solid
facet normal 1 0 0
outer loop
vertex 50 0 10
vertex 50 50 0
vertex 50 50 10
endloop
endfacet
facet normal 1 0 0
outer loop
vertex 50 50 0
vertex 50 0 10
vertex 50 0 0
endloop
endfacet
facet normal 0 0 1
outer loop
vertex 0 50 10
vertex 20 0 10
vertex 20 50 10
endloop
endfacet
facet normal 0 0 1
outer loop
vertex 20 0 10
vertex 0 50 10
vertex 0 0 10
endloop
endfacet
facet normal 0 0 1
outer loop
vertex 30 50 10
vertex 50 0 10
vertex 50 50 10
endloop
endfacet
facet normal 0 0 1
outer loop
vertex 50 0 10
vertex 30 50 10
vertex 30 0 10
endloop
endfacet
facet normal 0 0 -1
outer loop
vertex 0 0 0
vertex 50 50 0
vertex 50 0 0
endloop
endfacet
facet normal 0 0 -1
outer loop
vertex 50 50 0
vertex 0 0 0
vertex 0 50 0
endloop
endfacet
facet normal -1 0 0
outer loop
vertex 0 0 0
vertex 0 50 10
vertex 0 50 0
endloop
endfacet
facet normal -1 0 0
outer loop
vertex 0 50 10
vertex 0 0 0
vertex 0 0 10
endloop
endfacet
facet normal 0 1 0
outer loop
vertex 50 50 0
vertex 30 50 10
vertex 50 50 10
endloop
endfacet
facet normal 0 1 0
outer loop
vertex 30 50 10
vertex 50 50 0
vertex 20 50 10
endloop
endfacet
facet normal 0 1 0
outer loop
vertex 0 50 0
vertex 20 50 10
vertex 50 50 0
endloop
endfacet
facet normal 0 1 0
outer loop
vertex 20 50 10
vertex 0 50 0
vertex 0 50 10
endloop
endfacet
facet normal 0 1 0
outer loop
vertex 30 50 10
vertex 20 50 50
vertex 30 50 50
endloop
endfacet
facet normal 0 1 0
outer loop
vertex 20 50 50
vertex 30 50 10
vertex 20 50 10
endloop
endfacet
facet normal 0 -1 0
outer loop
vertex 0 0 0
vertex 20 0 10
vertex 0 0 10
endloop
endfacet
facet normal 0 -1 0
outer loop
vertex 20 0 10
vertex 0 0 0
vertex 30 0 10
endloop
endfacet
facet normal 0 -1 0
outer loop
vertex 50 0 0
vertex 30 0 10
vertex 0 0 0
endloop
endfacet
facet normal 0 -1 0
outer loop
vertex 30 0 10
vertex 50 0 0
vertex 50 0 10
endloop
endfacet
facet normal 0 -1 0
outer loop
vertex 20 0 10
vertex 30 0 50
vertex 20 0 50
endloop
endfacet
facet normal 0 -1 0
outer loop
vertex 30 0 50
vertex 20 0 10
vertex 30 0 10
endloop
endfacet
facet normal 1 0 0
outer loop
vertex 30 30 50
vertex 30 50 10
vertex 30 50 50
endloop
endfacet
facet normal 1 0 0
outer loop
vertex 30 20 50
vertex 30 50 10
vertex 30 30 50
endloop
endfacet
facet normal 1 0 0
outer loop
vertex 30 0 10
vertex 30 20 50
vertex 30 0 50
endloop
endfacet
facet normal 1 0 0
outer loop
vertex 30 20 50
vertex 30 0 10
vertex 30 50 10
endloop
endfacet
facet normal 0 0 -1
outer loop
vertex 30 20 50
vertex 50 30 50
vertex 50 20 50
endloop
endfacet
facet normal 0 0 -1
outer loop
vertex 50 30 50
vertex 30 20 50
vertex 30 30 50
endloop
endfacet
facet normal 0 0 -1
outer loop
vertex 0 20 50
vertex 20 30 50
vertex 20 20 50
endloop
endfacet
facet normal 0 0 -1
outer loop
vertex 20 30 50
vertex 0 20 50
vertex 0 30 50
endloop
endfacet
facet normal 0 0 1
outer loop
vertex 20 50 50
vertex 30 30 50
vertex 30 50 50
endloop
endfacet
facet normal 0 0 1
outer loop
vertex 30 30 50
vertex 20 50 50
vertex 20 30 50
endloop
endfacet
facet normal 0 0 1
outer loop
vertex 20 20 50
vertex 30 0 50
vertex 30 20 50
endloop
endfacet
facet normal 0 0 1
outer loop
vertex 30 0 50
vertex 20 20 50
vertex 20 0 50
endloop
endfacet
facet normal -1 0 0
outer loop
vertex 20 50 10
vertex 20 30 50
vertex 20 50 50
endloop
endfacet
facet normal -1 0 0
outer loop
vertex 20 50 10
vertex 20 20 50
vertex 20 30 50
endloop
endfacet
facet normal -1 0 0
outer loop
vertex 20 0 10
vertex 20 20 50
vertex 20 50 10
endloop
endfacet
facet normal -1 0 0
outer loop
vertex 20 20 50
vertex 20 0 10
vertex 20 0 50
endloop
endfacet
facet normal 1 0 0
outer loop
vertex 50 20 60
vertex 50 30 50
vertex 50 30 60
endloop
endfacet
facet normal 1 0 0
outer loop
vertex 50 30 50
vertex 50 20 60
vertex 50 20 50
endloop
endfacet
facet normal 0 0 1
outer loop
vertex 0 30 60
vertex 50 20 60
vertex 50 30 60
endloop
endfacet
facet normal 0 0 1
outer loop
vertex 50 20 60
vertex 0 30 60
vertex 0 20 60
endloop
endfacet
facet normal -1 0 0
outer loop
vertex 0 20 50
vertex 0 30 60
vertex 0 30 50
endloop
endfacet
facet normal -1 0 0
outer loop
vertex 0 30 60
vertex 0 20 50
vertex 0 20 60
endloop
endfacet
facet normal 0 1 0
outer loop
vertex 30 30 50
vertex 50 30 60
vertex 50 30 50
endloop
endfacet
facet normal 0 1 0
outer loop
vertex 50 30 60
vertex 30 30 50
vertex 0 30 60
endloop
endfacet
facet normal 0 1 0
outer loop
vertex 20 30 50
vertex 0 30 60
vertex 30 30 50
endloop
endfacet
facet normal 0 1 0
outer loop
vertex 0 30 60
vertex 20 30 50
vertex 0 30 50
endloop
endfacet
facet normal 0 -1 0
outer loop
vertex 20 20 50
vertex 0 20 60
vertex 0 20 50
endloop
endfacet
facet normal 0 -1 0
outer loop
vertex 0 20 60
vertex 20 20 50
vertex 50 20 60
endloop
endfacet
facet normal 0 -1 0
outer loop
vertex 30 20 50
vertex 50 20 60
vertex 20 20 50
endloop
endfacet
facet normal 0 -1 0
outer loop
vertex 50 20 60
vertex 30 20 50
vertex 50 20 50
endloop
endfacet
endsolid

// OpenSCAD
// Base block dimensions
base_block_length = 50;  // Length of the base block
base_block_width = 50;   // Width of the base block
base_block_height = 10;  // Height of the base block

// Vertical block dimensions
vertical_block_length = 10;  // Length of the vertical block
vertical_block_width = 50;   // Width of the vertical block
vertical_block_height = 40;  // Height of the vertical block

// Horizontal block dimensions
horizontal_block_length = 50;  // Length of the horizontal block
horizontal_block_width = 10;   // Width of the horizontal block
horizontal_block_height = 10;  // Height of the horizontal block

// Base block
module base_block() {
    // Restore the rectangular shape of the base block by removing the slanted cut
    cube([base_block_length, base_block_width, base_block_height]);
}

// Vertical block
module vertical_block() {
    // Adjust the vertical block to stand upright and perpendicular to the base block
    translate([(base_block_length - vertical_block_length) / 2, 0, base_block_height])
        cube([vertical_block_length, vertical_block_width, vertical_block_height]);
}

// Horizontal block
module horizontal_block() {
    // Lengthen the horizontal block and align it to extend straight out horizontally
    translate([0, (base_block_width - horizontal_block_width) / 2, base_block_height + vertical_block_height])
        cube([horizontal_block_length, horizontal_block_width, horizontal_block_height]);
}

// Assemble the model
module flexible_coupling() {
    base_block();
    vertical_block();
    horizontal_block();
}

// Render the model
flexible_coupling();
